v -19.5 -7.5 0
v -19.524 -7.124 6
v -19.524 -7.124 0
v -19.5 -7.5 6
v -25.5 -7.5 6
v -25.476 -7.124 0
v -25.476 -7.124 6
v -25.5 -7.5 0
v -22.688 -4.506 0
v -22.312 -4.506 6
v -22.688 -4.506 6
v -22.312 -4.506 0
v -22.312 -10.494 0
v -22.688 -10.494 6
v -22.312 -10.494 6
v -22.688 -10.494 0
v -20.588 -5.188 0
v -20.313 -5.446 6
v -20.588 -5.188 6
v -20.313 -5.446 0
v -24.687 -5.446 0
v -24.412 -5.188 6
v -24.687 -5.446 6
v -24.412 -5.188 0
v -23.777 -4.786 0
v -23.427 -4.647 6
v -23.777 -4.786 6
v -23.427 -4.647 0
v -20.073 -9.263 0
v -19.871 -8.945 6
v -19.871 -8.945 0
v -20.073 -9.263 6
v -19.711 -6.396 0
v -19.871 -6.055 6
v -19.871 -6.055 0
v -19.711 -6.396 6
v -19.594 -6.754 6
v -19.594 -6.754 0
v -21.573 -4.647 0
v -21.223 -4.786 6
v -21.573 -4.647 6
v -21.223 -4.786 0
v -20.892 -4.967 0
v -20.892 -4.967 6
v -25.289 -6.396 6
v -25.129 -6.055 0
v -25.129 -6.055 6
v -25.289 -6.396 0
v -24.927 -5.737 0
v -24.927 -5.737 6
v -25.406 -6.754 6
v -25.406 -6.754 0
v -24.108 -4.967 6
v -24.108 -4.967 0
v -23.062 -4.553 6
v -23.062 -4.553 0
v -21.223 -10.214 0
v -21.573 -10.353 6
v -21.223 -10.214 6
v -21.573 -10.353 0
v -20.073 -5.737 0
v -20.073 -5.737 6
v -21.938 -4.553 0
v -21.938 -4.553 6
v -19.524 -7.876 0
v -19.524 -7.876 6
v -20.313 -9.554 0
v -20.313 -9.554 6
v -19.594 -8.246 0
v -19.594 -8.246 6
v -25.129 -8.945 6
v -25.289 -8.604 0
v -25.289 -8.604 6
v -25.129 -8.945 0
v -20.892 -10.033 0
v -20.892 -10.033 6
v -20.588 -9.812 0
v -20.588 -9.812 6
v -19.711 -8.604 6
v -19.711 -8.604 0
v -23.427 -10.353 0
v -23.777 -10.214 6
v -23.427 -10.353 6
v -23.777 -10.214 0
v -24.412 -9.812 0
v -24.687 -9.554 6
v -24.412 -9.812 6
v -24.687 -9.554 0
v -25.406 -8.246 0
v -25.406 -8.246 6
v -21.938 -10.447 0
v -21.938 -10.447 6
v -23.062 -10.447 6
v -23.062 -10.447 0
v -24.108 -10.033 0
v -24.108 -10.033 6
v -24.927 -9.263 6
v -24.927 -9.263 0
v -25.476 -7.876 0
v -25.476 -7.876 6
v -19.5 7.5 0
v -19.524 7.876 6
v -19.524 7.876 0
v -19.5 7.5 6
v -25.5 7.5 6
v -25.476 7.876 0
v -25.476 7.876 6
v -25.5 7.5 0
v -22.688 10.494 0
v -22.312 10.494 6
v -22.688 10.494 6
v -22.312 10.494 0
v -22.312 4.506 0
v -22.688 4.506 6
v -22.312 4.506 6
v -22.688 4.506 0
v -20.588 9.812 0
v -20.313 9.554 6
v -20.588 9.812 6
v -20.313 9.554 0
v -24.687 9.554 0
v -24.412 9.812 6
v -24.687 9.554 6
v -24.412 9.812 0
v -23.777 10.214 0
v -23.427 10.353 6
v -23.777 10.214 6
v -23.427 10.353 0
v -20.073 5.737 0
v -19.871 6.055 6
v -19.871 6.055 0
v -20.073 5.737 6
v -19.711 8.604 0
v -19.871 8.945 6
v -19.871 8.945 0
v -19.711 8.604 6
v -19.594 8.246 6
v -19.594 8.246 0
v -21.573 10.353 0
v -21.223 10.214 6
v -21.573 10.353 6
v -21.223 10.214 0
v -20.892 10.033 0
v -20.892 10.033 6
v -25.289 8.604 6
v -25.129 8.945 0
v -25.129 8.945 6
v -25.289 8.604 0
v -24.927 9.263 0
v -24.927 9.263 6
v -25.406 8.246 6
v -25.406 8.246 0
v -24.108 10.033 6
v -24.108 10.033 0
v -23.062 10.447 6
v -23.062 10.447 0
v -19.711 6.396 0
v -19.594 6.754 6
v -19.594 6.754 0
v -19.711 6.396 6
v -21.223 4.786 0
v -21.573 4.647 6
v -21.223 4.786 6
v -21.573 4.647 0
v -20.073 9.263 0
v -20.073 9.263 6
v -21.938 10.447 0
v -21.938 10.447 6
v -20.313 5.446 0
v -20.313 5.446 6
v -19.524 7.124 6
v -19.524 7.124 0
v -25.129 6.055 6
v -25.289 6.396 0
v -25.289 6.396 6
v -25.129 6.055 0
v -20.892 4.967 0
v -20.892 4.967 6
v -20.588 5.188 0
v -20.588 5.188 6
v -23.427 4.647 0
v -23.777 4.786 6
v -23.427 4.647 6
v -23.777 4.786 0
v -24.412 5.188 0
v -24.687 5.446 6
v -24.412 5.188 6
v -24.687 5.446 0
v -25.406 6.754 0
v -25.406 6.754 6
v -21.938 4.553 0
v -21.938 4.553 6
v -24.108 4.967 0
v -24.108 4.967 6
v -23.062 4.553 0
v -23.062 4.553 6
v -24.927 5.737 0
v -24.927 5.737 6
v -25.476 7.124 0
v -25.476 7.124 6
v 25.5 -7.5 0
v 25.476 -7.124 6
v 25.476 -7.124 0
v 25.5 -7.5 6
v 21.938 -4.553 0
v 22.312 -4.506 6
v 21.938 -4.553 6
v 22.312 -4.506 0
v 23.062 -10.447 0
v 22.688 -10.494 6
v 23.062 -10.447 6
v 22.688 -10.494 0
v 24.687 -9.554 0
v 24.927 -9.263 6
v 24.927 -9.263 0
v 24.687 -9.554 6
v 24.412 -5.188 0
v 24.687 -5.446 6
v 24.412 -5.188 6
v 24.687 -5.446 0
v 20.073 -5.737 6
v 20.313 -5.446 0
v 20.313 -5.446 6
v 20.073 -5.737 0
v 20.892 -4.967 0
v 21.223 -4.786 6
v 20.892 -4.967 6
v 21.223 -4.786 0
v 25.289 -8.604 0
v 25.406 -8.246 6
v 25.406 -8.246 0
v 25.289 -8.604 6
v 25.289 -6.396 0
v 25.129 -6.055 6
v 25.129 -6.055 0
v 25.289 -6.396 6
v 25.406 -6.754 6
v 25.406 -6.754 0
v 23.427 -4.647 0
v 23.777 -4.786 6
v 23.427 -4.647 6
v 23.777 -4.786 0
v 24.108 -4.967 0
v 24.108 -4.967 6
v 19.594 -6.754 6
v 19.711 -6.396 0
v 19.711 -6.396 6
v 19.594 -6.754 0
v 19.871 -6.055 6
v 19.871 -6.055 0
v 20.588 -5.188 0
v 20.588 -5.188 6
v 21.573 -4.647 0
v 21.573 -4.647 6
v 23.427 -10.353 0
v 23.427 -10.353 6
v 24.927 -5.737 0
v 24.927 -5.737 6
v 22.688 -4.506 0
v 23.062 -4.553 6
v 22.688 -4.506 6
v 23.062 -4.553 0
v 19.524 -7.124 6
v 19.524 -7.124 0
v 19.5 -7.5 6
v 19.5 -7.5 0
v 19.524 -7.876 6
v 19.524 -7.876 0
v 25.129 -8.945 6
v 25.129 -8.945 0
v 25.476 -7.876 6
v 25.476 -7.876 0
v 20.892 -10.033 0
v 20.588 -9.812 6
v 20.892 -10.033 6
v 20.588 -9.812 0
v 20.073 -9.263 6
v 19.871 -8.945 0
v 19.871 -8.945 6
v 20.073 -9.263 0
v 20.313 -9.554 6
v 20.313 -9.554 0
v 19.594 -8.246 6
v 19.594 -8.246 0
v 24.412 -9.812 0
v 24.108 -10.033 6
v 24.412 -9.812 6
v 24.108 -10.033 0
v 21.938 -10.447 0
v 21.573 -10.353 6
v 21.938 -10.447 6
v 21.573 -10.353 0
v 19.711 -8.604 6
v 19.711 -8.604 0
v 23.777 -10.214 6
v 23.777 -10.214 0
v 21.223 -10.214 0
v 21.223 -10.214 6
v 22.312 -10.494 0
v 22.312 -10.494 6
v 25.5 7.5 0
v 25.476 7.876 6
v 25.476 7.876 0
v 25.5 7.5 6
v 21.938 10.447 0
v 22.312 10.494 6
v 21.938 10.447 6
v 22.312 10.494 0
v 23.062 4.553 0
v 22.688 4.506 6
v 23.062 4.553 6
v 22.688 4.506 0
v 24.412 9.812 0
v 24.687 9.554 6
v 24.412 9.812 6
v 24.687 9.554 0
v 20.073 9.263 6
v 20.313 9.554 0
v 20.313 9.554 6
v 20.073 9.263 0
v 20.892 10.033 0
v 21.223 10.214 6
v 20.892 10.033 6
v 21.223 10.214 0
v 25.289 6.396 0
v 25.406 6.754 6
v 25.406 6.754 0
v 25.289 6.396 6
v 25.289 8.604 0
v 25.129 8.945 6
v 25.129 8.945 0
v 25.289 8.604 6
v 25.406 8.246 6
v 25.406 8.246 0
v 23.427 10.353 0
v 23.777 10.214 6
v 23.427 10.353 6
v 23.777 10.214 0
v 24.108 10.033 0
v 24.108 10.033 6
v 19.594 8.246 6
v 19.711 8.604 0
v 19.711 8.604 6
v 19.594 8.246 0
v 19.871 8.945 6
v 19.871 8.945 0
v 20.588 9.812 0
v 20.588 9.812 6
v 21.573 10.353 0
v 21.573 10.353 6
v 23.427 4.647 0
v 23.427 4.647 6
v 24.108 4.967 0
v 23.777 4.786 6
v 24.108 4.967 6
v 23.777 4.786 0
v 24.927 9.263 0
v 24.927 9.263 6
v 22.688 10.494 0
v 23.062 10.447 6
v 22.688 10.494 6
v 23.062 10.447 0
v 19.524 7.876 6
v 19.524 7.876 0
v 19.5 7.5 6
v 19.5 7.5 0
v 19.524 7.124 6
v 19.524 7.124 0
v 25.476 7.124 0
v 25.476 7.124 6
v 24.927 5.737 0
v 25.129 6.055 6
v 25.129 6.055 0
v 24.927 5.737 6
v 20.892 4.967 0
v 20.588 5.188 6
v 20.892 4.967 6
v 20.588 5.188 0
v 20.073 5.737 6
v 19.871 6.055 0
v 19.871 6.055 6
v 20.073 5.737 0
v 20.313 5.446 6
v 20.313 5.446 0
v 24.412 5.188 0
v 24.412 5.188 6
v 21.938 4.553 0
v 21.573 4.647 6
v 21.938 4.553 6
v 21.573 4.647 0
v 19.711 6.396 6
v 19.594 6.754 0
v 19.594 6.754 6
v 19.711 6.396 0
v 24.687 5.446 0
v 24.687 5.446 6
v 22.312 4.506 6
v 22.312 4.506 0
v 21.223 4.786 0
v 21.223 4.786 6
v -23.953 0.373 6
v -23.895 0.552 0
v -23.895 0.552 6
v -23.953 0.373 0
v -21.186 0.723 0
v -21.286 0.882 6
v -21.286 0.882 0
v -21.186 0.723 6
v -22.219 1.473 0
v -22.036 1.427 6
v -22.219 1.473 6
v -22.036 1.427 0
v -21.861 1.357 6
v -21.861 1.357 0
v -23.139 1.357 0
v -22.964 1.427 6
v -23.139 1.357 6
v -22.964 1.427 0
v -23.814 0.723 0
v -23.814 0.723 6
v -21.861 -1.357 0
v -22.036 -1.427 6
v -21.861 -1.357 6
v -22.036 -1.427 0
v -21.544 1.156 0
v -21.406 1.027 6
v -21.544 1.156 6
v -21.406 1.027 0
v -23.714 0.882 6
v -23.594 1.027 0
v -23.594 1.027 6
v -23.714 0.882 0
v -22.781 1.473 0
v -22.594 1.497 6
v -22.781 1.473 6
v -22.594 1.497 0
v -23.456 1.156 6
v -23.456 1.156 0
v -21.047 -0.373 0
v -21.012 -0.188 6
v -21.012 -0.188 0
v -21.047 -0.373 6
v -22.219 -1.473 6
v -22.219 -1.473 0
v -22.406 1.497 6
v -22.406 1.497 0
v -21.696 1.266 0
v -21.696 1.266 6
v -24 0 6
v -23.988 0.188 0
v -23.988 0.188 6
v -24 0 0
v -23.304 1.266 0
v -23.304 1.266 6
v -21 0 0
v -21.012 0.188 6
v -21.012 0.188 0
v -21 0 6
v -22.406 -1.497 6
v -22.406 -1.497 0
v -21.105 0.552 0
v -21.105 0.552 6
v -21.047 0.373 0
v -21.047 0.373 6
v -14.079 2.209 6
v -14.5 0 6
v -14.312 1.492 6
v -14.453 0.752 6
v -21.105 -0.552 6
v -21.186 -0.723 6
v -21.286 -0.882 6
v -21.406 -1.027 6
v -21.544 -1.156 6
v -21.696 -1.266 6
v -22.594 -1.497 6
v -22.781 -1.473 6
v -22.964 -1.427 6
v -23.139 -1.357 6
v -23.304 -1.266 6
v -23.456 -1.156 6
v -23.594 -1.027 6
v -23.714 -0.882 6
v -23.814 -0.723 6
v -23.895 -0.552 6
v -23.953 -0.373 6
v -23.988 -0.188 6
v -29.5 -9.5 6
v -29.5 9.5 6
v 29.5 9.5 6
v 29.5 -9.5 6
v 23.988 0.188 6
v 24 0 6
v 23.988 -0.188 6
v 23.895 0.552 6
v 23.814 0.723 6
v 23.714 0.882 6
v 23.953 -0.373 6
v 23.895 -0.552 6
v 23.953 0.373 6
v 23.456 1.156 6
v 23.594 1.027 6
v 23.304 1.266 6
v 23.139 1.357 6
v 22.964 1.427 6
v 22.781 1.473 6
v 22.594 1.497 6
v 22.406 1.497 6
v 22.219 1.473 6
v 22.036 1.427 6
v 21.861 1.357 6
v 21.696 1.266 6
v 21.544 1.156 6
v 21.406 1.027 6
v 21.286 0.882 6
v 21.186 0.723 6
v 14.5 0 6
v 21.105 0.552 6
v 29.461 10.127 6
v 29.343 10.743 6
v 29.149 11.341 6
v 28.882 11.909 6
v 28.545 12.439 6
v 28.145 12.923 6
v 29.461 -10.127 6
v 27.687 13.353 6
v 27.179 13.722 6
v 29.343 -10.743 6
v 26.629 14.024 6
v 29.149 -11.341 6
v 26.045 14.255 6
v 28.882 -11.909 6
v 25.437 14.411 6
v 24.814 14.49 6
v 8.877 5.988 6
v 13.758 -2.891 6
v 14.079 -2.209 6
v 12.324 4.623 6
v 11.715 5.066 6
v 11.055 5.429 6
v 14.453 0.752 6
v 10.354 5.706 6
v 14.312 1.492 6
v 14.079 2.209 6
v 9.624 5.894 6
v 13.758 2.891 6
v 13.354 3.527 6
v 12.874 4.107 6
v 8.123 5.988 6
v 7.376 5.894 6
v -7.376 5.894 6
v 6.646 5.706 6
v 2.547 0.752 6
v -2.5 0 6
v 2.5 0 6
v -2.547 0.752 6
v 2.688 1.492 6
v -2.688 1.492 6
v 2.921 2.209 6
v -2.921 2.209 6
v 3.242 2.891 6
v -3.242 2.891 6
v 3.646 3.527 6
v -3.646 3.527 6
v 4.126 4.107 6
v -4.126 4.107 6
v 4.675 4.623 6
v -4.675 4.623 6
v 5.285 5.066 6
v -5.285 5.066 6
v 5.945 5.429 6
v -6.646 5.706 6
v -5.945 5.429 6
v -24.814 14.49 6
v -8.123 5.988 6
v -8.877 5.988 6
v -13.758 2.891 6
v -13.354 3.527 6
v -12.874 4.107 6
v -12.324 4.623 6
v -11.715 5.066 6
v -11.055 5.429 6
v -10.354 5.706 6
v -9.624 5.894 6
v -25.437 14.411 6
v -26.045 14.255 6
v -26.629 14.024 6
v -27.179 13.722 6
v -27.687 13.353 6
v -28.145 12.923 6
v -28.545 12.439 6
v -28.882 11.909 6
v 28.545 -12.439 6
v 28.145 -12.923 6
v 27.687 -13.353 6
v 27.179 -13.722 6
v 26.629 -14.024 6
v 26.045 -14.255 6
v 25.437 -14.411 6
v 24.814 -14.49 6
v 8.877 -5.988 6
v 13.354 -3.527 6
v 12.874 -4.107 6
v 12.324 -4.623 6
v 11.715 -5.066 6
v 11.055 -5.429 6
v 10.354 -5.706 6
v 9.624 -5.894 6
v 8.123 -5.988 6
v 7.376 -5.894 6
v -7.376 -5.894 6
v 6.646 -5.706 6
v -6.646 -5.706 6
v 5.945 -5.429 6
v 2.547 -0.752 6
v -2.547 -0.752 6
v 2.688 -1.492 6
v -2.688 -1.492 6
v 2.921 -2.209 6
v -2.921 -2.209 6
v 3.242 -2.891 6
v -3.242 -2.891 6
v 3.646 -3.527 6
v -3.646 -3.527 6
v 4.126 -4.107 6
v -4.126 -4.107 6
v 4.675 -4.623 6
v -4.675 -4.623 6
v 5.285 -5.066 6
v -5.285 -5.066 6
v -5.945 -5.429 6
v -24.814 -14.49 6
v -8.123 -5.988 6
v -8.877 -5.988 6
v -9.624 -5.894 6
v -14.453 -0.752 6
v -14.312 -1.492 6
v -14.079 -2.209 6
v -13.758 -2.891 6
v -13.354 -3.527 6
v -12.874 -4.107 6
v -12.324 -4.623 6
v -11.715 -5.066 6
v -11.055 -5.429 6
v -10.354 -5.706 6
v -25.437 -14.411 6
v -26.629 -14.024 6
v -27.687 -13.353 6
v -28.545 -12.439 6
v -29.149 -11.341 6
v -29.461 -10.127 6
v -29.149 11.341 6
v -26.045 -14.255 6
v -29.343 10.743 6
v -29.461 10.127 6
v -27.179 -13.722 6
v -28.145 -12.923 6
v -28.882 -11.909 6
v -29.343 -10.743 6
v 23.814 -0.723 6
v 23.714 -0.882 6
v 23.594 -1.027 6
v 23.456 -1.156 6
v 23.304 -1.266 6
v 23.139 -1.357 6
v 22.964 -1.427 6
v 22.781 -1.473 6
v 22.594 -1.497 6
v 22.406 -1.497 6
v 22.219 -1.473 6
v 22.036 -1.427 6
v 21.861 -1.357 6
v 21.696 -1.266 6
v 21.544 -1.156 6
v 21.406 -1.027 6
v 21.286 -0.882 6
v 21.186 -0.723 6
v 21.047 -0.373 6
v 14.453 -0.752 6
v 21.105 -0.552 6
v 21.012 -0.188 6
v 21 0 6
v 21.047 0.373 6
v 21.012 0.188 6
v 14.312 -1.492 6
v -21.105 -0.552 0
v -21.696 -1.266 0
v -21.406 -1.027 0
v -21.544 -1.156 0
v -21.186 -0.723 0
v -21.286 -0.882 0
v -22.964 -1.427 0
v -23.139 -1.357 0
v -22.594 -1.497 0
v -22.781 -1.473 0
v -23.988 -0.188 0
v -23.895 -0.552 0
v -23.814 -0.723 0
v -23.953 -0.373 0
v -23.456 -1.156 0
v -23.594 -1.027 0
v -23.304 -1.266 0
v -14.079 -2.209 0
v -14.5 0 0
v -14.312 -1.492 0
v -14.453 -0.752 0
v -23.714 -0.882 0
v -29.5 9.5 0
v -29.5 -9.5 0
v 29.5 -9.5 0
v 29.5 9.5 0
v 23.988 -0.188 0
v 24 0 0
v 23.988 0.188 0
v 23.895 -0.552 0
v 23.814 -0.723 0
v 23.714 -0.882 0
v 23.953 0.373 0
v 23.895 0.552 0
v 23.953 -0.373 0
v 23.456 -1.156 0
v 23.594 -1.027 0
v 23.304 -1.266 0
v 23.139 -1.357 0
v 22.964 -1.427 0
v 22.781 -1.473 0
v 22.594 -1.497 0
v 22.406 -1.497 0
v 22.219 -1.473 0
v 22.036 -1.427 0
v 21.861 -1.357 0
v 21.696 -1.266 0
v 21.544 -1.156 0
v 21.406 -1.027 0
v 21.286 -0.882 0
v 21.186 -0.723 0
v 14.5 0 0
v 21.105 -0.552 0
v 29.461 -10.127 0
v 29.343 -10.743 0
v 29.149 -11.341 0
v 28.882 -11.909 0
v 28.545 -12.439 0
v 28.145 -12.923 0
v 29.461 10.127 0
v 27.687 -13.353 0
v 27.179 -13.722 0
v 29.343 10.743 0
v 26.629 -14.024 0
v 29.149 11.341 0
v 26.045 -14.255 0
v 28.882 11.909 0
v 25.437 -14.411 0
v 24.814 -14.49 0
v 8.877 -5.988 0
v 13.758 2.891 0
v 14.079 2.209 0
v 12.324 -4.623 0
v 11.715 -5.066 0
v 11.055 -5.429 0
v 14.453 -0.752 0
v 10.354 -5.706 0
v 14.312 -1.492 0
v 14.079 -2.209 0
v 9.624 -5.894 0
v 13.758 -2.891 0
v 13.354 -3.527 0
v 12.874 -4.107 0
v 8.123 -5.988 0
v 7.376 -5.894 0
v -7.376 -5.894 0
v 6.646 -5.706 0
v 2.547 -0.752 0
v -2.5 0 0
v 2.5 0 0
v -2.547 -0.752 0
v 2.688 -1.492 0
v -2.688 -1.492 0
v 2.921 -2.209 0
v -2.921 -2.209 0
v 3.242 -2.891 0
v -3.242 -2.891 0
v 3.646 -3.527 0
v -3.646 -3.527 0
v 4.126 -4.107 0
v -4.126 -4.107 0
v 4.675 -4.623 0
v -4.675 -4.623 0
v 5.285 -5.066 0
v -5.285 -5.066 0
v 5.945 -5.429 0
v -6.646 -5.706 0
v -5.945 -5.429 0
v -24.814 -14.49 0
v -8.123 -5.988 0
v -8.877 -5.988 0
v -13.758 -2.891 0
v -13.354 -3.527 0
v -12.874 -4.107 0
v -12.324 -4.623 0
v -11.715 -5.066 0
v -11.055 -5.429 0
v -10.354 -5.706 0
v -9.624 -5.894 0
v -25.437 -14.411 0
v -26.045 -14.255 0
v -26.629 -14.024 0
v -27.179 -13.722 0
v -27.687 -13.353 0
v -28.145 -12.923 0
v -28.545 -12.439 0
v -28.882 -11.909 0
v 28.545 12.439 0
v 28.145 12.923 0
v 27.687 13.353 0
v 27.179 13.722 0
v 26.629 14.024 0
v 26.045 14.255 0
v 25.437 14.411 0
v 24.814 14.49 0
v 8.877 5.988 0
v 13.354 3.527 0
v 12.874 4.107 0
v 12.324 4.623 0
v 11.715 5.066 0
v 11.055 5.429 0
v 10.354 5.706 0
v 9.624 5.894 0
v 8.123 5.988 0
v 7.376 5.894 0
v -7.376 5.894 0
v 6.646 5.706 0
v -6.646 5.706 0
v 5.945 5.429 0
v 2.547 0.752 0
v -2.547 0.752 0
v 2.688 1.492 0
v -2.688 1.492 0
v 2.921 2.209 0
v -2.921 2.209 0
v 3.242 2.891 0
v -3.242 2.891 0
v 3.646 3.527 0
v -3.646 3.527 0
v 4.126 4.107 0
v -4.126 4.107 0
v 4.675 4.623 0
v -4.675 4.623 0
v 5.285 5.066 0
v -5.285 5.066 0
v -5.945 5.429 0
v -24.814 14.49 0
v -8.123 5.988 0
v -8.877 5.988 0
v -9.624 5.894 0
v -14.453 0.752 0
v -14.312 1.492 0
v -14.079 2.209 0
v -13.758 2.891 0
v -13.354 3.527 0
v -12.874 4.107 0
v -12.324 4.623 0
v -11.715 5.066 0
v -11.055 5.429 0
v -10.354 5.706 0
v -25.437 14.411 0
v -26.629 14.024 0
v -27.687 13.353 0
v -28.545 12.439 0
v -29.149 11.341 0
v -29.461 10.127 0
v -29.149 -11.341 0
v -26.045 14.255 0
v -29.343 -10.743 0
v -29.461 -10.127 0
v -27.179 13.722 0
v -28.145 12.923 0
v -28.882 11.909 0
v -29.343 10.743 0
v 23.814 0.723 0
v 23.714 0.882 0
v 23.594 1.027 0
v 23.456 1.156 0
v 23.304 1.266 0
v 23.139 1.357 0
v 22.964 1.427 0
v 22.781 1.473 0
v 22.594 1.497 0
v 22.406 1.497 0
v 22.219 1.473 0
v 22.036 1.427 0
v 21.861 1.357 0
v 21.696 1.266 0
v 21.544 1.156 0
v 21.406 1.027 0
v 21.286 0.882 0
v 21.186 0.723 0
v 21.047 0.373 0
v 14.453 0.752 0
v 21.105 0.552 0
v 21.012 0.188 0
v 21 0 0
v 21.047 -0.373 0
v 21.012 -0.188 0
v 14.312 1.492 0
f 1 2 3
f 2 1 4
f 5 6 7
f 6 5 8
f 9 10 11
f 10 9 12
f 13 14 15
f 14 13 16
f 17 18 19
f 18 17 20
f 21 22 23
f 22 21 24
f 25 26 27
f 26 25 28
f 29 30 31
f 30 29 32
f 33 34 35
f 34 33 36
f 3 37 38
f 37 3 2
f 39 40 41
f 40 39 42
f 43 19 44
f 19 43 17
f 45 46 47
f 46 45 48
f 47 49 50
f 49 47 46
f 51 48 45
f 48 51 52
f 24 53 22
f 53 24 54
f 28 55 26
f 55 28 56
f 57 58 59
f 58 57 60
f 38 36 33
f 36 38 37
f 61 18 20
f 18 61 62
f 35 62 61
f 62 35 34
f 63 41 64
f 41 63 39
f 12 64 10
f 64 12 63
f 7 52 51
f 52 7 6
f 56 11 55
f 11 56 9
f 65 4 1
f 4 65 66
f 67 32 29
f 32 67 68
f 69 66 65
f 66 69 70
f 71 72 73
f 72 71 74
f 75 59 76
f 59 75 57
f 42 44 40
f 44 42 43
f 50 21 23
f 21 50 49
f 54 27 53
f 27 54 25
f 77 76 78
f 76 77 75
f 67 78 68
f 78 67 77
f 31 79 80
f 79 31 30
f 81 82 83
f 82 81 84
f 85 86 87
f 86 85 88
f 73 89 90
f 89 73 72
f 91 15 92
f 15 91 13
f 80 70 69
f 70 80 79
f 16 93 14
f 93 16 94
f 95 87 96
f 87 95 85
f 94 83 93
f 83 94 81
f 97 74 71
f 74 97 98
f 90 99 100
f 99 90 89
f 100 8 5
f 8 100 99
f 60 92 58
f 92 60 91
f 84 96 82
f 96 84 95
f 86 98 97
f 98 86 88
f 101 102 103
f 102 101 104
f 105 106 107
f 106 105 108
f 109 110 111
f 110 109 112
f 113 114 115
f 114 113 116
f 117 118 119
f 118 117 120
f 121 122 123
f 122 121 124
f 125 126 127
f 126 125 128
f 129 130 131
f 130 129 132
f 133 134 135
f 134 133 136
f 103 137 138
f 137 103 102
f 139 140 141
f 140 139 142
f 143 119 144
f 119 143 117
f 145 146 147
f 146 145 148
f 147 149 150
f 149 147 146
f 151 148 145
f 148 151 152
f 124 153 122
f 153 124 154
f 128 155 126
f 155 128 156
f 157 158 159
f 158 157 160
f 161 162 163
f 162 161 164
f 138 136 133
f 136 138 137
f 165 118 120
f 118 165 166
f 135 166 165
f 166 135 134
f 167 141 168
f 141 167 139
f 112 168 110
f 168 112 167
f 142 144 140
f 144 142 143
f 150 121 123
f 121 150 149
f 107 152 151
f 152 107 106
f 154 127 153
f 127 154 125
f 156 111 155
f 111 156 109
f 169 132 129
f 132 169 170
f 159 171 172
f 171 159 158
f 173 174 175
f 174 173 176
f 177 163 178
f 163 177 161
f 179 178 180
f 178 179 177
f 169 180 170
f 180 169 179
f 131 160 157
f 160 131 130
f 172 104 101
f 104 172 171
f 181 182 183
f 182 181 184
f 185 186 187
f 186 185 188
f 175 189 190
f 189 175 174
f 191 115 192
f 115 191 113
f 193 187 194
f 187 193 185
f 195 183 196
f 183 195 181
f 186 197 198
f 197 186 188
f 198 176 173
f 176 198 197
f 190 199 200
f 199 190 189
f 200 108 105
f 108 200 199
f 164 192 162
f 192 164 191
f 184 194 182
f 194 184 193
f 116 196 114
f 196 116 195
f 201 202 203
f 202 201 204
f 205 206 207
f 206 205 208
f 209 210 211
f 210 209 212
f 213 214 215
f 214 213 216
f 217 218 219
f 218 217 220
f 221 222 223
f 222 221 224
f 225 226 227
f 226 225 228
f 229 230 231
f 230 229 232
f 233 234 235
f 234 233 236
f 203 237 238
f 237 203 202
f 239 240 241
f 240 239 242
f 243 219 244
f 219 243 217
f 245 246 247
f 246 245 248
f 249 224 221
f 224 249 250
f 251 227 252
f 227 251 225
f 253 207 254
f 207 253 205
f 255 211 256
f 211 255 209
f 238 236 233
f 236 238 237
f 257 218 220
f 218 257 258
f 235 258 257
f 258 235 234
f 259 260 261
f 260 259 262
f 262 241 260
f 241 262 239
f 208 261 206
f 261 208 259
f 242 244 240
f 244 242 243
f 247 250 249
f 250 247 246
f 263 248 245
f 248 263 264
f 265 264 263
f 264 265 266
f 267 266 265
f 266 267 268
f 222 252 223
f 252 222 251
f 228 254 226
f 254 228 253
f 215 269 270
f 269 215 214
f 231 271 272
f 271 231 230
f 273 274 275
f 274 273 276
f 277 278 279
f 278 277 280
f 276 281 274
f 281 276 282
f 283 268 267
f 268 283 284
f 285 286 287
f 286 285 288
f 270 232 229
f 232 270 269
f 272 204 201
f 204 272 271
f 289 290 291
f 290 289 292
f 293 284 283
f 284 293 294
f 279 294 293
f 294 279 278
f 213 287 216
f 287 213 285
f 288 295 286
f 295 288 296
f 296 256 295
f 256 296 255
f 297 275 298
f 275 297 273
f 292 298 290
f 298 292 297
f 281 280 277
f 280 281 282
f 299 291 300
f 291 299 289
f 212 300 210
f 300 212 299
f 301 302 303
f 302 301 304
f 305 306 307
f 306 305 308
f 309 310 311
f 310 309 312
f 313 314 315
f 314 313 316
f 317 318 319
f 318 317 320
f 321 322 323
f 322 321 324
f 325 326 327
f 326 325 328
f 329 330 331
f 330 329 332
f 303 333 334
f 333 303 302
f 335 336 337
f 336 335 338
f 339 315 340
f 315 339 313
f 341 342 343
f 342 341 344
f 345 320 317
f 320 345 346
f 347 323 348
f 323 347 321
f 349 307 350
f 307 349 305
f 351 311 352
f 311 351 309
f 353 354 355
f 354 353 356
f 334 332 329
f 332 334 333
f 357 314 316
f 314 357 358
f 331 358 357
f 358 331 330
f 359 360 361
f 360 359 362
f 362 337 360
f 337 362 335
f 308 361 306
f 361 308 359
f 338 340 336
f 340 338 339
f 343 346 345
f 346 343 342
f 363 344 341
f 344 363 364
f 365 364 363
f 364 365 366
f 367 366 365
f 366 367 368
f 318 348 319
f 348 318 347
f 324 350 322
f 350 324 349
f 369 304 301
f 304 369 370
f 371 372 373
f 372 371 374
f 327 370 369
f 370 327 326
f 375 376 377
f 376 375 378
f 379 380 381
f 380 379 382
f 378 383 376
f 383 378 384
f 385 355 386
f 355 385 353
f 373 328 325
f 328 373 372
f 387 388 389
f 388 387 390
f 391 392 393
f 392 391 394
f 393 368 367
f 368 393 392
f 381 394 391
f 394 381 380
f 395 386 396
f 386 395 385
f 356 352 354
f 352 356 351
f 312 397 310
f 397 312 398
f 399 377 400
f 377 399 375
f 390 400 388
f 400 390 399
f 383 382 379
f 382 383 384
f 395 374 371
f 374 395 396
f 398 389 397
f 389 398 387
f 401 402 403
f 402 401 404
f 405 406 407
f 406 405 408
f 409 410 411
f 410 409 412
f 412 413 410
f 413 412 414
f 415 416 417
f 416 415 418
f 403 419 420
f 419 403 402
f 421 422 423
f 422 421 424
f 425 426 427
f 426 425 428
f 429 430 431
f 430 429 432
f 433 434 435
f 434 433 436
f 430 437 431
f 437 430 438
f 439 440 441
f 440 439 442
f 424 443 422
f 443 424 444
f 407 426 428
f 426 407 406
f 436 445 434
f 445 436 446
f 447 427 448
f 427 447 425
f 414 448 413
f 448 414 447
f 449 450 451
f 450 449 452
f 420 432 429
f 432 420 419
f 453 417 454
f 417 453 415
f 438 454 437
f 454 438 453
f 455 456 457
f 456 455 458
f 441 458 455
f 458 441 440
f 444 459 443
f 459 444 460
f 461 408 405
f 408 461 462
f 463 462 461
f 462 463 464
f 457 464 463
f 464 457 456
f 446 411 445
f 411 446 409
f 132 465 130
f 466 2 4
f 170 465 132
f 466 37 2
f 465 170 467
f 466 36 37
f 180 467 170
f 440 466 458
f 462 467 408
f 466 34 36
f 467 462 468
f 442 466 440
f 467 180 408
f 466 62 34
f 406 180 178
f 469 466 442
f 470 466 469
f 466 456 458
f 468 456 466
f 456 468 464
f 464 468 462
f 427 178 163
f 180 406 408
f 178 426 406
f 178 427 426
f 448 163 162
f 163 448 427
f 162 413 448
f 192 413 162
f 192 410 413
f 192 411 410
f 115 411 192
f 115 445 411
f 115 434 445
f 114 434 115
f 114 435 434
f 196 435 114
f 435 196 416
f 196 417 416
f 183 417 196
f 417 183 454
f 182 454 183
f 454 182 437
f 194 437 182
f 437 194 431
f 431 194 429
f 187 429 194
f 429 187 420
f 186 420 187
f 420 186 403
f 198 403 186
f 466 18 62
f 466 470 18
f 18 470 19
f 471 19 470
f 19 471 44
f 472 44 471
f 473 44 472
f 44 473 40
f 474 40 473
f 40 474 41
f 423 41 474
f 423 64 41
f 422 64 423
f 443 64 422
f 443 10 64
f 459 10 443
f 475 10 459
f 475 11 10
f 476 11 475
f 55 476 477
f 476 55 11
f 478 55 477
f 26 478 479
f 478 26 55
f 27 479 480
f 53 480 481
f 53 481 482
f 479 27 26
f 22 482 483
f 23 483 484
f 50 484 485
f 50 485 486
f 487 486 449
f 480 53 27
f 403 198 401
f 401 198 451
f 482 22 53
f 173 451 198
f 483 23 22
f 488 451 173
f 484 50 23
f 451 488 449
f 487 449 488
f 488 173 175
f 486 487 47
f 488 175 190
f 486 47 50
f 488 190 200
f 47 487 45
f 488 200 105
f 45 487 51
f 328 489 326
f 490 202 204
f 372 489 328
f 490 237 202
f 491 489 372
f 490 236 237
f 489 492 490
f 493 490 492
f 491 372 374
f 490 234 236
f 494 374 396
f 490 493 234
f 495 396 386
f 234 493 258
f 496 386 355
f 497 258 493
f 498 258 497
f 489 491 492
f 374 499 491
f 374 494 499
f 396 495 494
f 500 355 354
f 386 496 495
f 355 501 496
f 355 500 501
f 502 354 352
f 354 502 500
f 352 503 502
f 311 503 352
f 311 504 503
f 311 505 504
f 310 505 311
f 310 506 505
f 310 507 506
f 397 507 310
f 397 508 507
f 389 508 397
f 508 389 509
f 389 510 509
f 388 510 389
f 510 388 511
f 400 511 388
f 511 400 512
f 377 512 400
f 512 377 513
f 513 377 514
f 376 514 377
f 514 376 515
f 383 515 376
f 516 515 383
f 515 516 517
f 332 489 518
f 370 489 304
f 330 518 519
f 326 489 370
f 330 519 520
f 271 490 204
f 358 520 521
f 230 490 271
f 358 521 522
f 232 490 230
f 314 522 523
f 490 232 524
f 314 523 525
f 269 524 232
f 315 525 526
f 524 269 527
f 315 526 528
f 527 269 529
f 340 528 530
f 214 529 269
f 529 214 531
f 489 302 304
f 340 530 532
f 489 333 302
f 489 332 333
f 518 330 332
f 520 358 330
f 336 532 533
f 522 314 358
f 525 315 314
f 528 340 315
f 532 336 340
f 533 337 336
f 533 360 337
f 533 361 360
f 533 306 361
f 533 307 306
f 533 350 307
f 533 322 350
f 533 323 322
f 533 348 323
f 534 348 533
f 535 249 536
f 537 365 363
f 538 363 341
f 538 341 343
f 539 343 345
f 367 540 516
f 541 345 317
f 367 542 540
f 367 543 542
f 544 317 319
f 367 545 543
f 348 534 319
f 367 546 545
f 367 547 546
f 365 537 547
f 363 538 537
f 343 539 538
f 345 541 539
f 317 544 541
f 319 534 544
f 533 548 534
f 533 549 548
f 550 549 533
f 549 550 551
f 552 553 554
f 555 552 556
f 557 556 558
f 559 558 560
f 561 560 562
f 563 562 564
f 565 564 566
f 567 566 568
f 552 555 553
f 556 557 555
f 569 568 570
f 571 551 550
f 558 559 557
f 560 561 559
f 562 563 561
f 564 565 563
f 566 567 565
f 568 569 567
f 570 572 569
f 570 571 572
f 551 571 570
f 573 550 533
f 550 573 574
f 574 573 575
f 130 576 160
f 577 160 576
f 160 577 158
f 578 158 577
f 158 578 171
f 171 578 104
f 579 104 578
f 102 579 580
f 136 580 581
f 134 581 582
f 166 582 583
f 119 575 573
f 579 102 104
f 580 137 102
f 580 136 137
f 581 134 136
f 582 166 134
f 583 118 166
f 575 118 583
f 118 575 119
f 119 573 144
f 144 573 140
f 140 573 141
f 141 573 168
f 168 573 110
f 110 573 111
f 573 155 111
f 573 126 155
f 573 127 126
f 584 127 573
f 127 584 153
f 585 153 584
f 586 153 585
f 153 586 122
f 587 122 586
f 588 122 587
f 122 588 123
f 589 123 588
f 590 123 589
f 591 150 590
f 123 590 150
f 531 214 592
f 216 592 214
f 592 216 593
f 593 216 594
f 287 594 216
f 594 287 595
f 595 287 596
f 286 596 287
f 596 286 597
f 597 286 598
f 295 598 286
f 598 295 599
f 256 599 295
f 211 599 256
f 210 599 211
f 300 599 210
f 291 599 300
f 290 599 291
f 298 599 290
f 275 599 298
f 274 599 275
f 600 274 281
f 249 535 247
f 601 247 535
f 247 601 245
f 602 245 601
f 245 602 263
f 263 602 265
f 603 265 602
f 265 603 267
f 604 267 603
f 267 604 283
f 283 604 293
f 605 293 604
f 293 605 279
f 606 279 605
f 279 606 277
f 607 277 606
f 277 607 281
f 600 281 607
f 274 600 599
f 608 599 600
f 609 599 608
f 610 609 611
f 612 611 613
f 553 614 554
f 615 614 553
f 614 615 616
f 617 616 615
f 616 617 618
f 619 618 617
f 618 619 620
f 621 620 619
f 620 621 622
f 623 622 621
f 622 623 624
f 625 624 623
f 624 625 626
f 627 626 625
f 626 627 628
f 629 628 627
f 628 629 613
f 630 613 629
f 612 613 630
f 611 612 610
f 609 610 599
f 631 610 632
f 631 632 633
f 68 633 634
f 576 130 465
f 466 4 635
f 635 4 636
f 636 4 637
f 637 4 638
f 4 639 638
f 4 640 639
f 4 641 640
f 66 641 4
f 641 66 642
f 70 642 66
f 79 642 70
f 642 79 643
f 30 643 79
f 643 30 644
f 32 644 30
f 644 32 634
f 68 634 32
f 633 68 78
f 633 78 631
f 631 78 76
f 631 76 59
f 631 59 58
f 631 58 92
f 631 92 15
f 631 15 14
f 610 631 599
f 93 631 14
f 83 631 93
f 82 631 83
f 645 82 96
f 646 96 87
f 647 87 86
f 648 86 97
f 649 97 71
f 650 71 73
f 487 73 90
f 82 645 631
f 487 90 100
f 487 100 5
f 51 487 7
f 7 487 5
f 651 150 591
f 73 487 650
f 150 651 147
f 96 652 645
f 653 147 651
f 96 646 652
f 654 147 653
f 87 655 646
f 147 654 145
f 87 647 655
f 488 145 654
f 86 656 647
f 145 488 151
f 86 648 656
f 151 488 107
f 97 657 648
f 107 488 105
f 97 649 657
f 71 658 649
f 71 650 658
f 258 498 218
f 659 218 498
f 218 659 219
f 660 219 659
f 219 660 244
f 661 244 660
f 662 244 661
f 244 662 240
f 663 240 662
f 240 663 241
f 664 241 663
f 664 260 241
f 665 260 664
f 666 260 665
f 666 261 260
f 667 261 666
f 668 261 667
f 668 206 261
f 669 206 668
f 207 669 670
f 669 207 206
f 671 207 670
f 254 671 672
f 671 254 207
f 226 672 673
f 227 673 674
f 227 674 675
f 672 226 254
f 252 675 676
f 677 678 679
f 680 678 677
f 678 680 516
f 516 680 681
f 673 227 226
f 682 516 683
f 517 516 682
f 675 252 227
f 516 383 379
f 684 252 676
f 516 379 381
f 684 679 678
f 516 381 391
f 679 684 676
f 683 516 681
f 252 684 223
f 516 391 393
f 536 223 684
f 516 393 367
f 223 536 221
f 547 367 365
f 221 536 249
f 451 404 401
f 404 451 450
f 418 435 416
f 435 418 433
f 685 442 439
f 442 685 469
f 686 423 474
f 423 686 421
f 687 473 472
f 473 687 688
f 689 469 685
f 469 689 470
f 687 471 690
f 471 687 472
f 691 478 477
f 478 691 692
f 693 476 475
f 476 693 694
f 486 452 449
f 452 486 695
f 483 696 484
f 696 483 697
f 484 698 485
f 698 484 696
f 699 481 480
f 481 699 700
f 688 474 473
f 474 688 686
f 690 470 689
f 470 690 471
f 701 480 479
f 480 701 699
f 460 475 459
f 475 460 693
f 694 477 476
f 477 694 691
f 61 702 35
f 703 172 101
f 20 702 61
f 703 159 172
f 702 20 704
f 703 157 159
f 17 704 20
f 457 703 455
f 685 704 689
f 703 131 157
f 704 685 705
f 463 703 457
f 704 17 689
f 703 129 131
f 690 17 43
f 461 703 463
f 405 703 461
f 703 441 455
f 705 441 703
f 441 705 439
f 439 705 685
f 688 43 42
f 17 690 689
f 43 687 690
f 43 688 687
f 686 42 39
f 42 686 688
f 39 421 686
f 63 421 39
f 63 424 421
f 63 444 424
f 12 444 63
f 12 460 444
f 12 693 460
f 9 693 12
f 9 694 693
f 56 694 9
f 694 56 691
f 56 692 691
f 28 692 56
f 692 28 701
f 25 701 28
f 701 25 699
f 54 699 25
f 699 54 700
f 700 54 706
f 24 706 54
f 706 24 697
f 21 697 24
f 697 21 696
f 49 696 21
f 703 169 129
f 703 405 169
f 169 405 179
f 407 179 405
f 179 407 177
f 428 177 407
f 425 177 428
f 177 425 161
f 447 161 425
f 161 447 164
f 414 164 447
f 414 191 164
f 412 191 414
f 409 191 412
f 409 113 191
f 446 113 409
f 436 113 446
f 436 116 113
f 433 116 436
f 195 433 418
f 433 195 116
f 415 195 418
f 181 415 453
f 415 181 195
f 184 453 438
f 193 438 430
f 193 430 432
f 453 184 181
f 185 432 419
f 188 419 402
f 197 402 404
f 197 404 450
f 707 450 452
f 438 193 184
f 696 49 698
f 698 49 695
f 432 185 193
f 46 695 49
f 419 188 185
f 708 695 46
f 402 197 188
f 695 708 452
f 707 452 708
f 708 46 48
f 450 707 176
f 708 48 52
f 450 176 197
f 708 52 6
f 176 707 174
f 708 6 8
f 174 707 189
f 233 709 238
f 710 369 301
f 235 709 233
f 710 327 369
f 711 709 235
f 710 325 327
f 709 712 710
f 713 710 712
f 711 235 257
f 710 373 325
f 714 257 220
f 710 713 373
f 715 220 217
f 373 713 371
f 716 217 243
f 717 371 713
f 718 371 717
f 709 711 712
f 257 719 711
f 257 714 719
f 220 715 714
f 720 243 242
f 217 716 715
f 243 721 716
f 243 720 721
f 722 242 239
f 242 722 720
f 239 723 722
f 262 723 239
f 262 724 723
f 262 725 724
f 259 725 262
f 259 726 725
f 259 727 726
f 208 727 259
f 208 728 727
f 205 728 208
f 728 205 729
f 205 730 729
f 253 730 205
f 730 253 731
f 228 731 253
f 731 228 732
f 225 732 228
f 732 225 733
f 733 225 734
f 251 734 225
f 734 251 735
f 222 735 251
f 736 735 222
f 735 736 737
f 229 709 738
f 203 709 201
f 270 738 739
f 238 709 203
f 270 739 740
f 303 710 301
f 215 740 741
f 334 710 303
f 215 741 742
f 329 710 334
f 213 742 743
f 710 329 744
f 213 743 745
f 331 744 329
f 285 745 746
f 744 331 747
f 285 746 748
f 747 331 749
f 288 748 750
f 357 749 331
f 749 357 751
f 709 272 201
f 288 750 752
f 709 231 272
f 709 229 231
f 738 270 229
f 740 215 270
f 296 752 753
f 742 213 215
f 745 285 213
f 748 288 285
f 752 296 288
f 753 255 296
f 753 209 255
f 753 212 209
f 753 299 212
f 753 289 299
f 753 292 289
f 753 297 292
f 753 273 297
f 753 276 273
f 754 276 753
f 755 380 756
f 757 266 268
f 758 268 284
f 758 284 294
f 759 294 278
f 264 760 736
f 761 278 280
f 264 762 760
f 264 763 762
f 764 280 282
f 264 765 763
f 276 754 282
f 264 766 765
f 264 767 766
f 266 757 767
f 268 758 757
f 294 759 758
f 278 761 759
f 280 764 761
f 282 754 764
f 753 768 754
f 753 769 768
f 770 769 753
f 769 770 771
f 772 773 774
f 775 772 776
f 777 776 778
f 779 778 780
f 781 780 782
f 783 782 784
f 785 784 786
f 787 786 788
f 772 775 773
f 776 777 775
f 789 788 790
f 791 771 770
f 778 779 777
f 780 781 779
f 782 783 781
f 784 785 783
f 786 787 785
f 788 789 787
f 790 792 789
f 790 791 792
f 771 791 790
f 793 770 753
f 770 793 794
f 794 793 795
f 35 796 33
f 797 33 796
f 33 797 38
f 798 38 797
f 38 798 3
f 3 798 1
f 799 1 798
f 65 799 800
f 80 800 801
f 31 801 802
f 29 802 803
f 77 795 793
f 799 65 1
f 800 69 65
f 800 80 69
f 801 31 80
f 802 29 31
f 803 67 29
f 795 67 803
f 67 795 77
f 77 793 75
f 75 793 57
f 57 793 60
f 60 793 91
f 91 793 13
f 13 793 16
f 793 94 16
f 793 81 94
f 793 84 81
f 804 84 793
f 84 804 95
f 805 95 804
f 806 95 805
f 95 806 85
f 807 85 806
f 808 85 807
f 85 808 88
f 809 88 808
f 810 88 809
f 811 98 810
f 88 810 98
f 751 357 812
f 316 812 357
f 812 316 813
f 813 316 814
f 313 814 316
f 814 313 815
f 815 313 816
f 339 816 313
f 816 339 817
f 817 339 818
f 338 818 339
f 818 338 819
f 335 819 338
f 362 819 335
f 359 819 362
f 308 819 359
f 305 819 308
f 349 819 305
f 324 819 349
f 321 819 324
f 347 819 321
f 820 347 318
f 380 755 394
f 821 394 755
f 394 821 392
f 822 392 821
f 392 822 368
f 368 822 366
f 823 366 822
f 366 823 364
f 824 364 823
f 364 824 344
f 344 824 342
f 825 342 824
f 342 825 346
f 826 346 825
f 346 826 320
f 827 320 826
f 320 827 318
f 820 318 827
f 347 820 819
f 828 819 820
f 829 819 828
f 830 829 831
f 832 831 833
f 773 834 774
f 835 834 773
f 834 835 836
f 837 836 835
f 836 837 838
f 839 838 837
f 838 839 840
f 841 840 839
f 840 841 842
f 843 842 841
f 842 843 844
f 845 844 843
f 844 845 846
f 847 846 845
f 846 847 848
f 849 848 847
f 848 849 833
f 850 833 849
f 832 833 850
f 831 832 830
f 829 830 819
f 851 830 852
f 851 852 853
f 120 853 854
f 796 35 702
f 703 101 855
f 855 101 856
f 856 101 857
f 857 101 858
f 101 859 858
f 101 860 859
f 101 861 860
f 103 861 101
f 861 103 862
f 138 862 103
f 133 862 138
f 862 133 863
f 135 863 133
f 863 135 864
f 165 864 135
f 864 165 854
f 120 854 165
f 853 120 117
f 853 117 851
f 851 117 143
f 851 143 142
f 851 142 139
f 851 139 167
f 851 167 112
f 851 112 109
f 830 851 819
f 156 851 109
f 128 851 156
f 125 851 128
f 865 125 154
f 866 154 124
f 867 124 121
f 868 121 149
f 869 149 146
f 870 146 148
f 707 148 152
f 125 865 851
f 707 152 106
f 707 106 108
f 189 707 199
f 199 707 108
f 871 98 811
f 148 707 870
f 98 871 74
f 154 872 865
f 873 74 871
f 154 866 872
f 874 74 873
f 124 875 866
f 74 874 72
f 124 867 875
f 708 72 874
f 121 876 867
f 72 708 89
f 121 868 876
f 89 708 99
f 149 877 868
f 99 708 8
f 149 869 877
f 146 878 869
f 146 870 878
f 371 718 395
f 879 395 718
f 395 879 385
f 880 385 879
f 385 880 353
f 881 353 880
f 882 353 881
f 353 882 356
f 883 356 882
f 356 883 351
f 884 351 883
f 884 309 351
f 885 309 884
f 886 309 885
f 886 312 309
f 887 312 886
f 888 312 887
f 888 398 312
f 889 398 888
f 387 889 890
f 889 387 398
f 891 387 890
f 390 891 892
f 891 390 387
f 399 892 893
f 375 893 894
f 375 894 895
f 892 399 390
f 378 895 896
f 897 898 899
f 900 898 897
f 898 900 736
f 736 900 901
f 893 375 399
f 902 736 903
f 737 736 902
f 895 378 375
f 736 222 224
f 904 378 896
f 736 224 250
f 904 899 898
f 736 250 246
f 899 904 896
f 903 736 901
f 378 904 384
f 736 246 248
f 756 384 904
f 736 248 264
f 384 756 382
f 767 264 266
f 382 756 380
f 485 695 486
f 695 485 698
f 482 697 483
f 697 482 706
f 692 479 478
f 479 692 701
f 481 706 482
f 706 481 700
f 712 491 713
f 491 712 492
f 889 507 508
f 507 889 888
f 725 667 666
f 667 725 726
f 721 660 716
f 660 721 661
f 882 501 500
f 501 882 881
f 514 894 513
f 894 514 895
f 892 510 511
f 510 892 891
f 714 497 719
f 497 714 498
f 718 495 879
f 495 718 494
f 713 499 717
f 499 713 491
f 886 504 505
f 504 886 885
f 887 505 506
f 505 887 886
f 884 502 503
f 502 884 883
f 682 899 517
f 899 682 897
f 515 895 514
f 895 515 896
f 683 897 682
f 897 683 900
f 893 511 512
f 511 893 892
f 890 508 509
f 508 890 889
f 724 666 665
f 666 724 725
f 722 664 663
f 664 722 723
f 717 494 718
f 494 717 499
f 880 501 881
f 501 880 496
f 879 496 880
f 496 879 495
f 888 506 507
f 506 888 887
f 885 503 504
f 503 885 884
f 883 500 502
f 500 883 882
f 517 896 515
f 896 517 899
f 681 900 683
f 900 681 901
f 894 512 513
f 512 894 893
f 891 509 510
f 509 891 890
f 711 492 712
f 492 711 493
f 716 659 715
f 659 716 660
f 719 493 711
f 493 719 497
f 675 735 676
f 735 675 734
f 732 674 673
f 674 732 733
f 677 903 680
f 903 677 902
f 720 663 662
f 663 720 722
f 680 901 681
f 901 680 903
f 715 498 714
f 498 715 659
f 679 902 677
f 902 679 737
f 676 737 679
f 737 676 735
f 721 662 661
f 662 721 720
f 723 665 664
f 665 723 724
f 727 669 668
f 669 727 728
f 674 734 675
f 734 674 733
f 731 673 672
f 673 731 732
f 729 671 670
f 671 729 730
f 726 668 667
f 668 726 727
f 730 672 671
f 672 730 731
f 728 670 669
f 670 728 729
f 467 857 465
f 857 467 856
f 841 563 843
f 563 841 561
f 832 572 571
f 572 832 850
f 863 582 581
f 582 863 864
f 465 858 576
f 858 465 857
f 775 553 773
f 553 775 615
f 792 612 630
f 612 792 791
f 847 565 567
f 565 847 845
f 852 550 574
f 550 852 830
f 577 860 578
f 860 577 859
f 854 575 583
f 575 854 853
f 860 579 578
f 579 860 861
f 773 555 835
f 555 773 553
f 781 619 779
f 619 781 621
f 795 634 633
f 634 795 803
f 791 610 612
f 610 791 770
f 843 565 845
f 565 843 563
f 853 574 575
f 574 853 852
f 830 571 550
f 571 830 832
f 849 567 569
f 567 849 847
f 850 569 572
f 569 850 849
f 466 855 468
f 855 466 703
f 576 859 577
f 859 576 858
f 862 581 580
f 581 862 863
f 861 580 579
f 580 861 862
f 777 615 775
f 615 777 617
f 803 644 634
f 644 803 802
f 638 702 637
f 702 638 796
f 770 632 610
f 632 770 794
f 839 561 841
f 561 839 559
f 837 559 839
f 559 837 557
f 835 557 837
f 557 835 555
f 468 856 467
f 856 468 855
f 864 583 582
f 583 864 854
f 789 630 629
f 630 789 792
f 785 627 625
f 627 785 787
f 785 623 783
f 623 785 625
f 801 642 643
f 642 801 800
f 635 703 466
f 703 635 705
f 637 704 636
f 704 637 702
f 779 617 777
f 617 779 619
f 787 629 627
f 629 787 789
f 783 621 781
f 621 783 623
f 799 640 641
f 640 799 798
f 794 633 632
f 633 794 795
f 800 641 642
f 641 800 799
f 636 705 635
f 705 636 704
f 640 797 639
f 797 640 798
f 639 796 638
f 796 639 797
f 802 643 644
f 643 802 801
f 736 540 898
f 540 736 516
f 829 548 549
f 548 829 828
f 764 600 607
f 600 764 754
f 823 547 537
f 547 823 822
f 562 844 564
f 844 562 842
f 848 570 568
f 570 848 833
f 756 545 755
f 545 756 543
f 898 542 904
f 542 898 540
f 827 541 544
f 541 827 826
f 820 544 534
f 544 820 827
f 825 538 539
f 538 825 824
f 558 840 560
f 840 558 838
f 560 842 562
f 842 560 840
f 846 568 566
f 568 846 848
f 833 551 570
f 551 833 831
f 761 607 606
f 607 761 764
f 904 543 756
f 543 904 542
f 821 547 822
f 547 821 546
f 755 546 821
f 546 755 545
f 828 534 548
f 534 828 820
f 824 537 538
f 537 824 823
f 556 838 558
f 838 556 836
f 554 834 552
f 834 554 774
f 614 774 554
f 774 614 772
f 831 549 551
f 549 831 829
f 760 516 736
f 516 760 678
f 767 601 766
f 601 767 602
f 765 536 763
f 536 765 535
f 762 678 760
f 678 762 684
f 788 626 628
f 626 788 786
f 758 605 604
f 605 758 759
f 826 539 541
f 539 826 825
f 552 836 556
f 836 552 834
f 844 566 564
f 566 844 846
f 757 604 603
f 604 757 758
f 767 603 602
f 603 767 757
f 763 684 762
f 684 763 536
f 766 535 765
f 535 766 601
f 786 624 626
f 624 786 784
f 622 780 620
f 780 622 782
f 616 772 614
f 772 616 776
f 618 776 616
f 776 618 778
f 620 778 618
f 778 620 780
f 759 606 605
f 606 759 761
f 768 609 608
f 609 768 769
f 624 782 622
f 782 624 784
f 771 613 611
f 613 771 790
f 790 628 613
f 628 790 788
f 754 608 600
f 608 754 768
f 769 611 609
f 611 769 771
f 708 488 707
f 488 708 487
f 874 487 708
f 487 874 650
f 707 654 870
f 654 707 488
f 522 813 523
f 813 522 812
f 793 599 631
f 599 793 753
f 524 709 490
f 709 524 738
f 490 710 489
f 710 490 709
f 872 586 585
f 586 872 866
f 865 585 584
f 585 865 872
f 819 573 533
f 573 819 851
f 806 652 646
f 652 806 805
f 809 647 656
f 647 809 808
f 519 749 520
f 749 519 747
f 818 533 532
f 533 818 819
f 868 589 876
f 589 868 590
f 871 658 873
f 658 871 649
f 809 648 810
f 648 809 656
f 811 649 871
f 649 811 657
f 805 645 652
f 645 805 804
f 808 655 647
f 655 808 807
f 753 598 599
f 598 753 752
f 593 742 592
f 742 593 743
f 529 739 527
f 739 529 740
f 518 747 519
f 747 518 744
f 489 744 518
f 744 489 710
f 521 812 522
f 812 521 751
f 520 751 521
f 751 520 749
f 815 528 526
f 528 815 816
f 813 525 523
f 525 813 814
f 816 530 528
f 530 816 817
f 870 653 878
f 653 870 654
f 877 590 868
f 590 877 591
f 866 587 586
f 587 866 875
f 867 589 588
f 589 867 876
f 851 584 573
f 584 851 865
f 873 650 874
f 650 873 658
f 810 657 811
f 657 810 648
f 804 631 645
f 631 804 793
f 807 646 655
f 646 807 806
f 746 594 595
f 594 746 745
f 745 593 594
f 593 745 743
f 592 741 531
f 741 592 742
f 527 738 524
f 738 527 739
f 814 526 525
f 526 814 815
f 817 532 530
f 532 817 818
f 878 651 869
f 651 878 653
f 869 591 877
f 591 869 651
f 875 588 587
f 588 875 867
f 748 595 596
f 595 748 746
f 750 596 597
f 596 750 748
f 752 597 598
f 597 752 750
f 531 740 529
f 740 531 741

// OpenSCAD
$fn = 50;


difference() {
	union() {
		hull() {
			translate(v = [-24.5000000000, 9.5000000000, 0]) {
				cylinder(h = 6, r = 5);
			}
			translate(v = [24.5000000000, 9.5000000000, 0]) {
				cylinder(h = 6, r = 5);
			}
			translate(v = [-24.5000000000, -9.5000000000, 0]) {
				cylinder(h = 6, r = 5);
			}
			translate(v = [24.5000000000, -9.5000000000, 0]) {
				cylinder(h = 6, r = 5);
			}
		}
	}
	union() {
		#translate(v = [-22.5000000000, -7.5000000000, 0]) {
			cylinder(h = 6, r = 3.0000000000);
		}
		#translate(v = [-22.5000000000, 7.5000000000, 0]) {
			cylinder(h = 6, r = 3.0000000000);
		}
		#translate(v = [22.5000000000, -7.5000000000, 0]) {
			cylinder(h = 6, r = 3.0000000000);
		}
		#translate(v = [22.5000000000, 7.5000000000, 0]) {
			cylinder(h = 6, r = 3.0000000000);
		}
		#translate(v = [-22.5000000000, -7.5000000000, -100.0000000000]) {
			cylinder(h = 200, r = 3.0000000000);
		}
		#translate(v = [-22.5000000000, 7.5000000000, -100.0000000000]) {
			cylinder(h = 200, r = 3.0000000000);
		}
		#translate(v = [22.5000000000, -7.5000000000, -100.0000000000]) {
			cylinder(h = 200, r = 3.0000000000);
		}
		#translate(v = [22.5000000000, 7.5000000000, -100.0000000000]) {
			cylinder(h = 200, r = 3.0000000000);
		}
		#translate(v = [-22.5000000000, -7.5000000000, 0]) {
			cylinder(h = 6, r = 1.5000000000);
		}
		#translate(v = [-22.5000000000, 0.0000000000, 0]) {
			cylinder(h = 6, r = 1.5000000000);
		}
		#translate(v = [-22.5000000000, 7.5000000000, 0]) {
			cylinder(h = 6, r = 1.5000000000);
		}
		#translate(v = [22.5000000000, -7.5000000000, 0]) {
			cylinder(h = 6, r = 1.5000000000);
		}
		#translate(v = [22.5000000000, 0.0000000000, 0]) {
			cylinder(h = 6, r = 1.5000000000);
		}
		#translate(v = [22.5000000000, 7.5000000000, 0]) {
			cylinder(h = 6, r = 1.5000000000);
		}
		#translate(v = [-22.5000000000, -7.5000000000, 0]) {
			cylinder(h = 6, r = 1.5000000000);
		}
		#translate(v = [-22.5000000000, 0.0000000000, 0]) {
			cylinder(h = 6, r = 1.5000000000);
		}
		#translate(v = [-22.5000000000, 7.5000000000, 0]) {
			cylinder(h = 6, r = 1.5000000000);
		}
		#translate(v = [22.5000000000, -7.5000000000, 0]) {
			cylinder(h = 6, r = 1.5000000000);
		}
		#translate(v = [22.5000000000, 0.0000000000, 0]) {
			cylinder(h = 6, r = 1.5000000000);
		}
		#translate(v = [22.5000000000, 7.5000000000, 0]) {
			cylinder(h = 6, r = 1.5000000000);
		}
		#translate(v = [-22.5000000000, -7.5000000000, 0]) {
			cylinder(h = 6, r = 1.5000000000);
		}
		#translate(v = [-22.5000000000, 0.0000000000, 0]) {
			cylinder(h = 6, r = 1.5000000000);
		}
		#translate(v = [-22.5000000000, 7.5000000000, 0]) {
			cylinder(h = 6, r = 1.5000000000);
		}
		#translate(v = [22.5000000000, -7.5000000000, 0]) {
			cylinder(h = 6, r = 1.5000000000);
		}
		#translate(v = [22.5000000000, 0.0000000000, 0]) {
			cylinder(h = 6, r = 1.5000000000);
		}
		#translate(v = [22.5000000000, 7.5000000000, 0]) {
			cylinder(h = 6, r = 1.5000000000);
		}
		#translate(v = [-8.5000000000, 0, 0]) {
			cylinder(h = 6, r = 6.0000000000);
		}
		#translate(v = [8.5000000000, 0, 0]) {
			cylinder(h = 6, r = 6.0000000000);
		}
	}
}
